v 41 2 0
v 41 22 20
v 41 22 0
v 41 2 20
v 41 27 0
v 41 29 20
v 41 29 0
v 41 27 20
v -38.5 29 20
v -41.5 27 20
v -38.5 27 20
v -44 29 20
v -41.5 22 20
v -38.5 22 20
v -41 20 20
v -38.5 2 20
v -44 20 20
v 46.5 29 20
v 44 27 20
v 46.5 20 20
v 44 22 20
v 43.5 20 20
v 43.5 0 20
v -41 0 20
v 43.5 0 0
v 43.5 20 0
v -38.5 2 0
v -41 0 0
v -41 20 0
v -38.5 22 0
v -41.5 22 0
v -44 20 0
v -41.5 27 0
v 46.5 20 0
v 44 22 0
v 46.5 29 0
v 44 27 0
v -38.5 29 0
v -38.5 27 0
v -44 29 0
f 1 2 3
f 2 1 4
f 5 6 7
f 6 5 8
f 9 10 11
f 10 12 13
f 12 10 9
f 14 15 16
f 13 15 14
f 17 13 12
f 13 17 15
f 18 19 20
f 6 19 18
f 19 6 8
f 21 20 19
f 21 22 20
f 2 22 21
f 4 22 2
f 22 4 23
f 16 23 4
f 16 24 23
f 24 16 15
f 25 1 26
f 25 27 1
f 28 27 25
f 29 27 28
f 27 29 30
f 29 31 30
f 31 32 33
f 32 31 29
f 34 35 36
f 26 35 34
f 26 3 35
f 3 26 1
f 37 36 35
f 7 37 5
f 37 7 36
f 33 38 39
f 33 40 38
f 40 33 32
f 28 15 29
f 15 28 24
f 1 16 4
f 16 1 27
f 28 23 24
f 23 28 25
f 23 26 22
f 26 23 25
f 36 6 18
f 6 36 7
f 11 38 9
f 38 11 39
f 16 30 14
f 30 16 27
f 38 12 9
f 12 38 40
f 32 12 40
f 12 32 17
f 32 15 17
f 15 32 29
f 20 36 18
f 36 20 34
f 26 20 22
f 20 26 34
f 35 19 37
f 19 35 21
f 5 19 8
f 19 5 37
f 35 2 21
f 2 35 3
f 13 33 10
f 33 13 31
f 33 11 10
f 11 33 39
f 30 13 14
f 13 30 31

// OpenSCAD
/*
Everything is in milimeters
 */

width_casing = 82;
height_casing = 20;

width_seb_phone = 77;
width = 2;
width_side = (width_casing - width_seb_phone) / 2;
width_break = 9;
depth_break = 3;

length_side = 29;

hole_width = 5;
hole_depth = 3;
hole_position = length_side - width_break / 2 - hole_width/2;

difference(){
    union()
        {
        // Back side
        translate([-width_casing/2, 0, 0])
            cube([width_casing, width, height_casing]);
        // Right side
        translate([width_casing/2, 0, 0])
            cube([width_side, length_side, height_casing]);
        // Left side
        translate([-width_casing/2, 0, 0])
            cube([width_side, length_side, height_casing]);
        // Left break
        translate([-width_casing/2-depth_break, length_side - width_break, 0])
            cube([depth_break, width_break, height_casing]);
        // Right break
        translate([width_casing/2+width_side, length_side - width_break, 0])
            cube([depth_break, width_break, height_casing]);
    };
    union(){
    // Left hole (for adding more of these things..)
    translate([width_casing/2, hole_position, -1])
        cube([hole_depth, hole_width, 1.1*height_casing]);
    // Right hole (for adding more of these things..)
    translate([-width_casing/2-hole_depth+width_side, hole_position, -1])
        cube([hole_depth, hole_width, 1.1*height_casing]);
}
}
